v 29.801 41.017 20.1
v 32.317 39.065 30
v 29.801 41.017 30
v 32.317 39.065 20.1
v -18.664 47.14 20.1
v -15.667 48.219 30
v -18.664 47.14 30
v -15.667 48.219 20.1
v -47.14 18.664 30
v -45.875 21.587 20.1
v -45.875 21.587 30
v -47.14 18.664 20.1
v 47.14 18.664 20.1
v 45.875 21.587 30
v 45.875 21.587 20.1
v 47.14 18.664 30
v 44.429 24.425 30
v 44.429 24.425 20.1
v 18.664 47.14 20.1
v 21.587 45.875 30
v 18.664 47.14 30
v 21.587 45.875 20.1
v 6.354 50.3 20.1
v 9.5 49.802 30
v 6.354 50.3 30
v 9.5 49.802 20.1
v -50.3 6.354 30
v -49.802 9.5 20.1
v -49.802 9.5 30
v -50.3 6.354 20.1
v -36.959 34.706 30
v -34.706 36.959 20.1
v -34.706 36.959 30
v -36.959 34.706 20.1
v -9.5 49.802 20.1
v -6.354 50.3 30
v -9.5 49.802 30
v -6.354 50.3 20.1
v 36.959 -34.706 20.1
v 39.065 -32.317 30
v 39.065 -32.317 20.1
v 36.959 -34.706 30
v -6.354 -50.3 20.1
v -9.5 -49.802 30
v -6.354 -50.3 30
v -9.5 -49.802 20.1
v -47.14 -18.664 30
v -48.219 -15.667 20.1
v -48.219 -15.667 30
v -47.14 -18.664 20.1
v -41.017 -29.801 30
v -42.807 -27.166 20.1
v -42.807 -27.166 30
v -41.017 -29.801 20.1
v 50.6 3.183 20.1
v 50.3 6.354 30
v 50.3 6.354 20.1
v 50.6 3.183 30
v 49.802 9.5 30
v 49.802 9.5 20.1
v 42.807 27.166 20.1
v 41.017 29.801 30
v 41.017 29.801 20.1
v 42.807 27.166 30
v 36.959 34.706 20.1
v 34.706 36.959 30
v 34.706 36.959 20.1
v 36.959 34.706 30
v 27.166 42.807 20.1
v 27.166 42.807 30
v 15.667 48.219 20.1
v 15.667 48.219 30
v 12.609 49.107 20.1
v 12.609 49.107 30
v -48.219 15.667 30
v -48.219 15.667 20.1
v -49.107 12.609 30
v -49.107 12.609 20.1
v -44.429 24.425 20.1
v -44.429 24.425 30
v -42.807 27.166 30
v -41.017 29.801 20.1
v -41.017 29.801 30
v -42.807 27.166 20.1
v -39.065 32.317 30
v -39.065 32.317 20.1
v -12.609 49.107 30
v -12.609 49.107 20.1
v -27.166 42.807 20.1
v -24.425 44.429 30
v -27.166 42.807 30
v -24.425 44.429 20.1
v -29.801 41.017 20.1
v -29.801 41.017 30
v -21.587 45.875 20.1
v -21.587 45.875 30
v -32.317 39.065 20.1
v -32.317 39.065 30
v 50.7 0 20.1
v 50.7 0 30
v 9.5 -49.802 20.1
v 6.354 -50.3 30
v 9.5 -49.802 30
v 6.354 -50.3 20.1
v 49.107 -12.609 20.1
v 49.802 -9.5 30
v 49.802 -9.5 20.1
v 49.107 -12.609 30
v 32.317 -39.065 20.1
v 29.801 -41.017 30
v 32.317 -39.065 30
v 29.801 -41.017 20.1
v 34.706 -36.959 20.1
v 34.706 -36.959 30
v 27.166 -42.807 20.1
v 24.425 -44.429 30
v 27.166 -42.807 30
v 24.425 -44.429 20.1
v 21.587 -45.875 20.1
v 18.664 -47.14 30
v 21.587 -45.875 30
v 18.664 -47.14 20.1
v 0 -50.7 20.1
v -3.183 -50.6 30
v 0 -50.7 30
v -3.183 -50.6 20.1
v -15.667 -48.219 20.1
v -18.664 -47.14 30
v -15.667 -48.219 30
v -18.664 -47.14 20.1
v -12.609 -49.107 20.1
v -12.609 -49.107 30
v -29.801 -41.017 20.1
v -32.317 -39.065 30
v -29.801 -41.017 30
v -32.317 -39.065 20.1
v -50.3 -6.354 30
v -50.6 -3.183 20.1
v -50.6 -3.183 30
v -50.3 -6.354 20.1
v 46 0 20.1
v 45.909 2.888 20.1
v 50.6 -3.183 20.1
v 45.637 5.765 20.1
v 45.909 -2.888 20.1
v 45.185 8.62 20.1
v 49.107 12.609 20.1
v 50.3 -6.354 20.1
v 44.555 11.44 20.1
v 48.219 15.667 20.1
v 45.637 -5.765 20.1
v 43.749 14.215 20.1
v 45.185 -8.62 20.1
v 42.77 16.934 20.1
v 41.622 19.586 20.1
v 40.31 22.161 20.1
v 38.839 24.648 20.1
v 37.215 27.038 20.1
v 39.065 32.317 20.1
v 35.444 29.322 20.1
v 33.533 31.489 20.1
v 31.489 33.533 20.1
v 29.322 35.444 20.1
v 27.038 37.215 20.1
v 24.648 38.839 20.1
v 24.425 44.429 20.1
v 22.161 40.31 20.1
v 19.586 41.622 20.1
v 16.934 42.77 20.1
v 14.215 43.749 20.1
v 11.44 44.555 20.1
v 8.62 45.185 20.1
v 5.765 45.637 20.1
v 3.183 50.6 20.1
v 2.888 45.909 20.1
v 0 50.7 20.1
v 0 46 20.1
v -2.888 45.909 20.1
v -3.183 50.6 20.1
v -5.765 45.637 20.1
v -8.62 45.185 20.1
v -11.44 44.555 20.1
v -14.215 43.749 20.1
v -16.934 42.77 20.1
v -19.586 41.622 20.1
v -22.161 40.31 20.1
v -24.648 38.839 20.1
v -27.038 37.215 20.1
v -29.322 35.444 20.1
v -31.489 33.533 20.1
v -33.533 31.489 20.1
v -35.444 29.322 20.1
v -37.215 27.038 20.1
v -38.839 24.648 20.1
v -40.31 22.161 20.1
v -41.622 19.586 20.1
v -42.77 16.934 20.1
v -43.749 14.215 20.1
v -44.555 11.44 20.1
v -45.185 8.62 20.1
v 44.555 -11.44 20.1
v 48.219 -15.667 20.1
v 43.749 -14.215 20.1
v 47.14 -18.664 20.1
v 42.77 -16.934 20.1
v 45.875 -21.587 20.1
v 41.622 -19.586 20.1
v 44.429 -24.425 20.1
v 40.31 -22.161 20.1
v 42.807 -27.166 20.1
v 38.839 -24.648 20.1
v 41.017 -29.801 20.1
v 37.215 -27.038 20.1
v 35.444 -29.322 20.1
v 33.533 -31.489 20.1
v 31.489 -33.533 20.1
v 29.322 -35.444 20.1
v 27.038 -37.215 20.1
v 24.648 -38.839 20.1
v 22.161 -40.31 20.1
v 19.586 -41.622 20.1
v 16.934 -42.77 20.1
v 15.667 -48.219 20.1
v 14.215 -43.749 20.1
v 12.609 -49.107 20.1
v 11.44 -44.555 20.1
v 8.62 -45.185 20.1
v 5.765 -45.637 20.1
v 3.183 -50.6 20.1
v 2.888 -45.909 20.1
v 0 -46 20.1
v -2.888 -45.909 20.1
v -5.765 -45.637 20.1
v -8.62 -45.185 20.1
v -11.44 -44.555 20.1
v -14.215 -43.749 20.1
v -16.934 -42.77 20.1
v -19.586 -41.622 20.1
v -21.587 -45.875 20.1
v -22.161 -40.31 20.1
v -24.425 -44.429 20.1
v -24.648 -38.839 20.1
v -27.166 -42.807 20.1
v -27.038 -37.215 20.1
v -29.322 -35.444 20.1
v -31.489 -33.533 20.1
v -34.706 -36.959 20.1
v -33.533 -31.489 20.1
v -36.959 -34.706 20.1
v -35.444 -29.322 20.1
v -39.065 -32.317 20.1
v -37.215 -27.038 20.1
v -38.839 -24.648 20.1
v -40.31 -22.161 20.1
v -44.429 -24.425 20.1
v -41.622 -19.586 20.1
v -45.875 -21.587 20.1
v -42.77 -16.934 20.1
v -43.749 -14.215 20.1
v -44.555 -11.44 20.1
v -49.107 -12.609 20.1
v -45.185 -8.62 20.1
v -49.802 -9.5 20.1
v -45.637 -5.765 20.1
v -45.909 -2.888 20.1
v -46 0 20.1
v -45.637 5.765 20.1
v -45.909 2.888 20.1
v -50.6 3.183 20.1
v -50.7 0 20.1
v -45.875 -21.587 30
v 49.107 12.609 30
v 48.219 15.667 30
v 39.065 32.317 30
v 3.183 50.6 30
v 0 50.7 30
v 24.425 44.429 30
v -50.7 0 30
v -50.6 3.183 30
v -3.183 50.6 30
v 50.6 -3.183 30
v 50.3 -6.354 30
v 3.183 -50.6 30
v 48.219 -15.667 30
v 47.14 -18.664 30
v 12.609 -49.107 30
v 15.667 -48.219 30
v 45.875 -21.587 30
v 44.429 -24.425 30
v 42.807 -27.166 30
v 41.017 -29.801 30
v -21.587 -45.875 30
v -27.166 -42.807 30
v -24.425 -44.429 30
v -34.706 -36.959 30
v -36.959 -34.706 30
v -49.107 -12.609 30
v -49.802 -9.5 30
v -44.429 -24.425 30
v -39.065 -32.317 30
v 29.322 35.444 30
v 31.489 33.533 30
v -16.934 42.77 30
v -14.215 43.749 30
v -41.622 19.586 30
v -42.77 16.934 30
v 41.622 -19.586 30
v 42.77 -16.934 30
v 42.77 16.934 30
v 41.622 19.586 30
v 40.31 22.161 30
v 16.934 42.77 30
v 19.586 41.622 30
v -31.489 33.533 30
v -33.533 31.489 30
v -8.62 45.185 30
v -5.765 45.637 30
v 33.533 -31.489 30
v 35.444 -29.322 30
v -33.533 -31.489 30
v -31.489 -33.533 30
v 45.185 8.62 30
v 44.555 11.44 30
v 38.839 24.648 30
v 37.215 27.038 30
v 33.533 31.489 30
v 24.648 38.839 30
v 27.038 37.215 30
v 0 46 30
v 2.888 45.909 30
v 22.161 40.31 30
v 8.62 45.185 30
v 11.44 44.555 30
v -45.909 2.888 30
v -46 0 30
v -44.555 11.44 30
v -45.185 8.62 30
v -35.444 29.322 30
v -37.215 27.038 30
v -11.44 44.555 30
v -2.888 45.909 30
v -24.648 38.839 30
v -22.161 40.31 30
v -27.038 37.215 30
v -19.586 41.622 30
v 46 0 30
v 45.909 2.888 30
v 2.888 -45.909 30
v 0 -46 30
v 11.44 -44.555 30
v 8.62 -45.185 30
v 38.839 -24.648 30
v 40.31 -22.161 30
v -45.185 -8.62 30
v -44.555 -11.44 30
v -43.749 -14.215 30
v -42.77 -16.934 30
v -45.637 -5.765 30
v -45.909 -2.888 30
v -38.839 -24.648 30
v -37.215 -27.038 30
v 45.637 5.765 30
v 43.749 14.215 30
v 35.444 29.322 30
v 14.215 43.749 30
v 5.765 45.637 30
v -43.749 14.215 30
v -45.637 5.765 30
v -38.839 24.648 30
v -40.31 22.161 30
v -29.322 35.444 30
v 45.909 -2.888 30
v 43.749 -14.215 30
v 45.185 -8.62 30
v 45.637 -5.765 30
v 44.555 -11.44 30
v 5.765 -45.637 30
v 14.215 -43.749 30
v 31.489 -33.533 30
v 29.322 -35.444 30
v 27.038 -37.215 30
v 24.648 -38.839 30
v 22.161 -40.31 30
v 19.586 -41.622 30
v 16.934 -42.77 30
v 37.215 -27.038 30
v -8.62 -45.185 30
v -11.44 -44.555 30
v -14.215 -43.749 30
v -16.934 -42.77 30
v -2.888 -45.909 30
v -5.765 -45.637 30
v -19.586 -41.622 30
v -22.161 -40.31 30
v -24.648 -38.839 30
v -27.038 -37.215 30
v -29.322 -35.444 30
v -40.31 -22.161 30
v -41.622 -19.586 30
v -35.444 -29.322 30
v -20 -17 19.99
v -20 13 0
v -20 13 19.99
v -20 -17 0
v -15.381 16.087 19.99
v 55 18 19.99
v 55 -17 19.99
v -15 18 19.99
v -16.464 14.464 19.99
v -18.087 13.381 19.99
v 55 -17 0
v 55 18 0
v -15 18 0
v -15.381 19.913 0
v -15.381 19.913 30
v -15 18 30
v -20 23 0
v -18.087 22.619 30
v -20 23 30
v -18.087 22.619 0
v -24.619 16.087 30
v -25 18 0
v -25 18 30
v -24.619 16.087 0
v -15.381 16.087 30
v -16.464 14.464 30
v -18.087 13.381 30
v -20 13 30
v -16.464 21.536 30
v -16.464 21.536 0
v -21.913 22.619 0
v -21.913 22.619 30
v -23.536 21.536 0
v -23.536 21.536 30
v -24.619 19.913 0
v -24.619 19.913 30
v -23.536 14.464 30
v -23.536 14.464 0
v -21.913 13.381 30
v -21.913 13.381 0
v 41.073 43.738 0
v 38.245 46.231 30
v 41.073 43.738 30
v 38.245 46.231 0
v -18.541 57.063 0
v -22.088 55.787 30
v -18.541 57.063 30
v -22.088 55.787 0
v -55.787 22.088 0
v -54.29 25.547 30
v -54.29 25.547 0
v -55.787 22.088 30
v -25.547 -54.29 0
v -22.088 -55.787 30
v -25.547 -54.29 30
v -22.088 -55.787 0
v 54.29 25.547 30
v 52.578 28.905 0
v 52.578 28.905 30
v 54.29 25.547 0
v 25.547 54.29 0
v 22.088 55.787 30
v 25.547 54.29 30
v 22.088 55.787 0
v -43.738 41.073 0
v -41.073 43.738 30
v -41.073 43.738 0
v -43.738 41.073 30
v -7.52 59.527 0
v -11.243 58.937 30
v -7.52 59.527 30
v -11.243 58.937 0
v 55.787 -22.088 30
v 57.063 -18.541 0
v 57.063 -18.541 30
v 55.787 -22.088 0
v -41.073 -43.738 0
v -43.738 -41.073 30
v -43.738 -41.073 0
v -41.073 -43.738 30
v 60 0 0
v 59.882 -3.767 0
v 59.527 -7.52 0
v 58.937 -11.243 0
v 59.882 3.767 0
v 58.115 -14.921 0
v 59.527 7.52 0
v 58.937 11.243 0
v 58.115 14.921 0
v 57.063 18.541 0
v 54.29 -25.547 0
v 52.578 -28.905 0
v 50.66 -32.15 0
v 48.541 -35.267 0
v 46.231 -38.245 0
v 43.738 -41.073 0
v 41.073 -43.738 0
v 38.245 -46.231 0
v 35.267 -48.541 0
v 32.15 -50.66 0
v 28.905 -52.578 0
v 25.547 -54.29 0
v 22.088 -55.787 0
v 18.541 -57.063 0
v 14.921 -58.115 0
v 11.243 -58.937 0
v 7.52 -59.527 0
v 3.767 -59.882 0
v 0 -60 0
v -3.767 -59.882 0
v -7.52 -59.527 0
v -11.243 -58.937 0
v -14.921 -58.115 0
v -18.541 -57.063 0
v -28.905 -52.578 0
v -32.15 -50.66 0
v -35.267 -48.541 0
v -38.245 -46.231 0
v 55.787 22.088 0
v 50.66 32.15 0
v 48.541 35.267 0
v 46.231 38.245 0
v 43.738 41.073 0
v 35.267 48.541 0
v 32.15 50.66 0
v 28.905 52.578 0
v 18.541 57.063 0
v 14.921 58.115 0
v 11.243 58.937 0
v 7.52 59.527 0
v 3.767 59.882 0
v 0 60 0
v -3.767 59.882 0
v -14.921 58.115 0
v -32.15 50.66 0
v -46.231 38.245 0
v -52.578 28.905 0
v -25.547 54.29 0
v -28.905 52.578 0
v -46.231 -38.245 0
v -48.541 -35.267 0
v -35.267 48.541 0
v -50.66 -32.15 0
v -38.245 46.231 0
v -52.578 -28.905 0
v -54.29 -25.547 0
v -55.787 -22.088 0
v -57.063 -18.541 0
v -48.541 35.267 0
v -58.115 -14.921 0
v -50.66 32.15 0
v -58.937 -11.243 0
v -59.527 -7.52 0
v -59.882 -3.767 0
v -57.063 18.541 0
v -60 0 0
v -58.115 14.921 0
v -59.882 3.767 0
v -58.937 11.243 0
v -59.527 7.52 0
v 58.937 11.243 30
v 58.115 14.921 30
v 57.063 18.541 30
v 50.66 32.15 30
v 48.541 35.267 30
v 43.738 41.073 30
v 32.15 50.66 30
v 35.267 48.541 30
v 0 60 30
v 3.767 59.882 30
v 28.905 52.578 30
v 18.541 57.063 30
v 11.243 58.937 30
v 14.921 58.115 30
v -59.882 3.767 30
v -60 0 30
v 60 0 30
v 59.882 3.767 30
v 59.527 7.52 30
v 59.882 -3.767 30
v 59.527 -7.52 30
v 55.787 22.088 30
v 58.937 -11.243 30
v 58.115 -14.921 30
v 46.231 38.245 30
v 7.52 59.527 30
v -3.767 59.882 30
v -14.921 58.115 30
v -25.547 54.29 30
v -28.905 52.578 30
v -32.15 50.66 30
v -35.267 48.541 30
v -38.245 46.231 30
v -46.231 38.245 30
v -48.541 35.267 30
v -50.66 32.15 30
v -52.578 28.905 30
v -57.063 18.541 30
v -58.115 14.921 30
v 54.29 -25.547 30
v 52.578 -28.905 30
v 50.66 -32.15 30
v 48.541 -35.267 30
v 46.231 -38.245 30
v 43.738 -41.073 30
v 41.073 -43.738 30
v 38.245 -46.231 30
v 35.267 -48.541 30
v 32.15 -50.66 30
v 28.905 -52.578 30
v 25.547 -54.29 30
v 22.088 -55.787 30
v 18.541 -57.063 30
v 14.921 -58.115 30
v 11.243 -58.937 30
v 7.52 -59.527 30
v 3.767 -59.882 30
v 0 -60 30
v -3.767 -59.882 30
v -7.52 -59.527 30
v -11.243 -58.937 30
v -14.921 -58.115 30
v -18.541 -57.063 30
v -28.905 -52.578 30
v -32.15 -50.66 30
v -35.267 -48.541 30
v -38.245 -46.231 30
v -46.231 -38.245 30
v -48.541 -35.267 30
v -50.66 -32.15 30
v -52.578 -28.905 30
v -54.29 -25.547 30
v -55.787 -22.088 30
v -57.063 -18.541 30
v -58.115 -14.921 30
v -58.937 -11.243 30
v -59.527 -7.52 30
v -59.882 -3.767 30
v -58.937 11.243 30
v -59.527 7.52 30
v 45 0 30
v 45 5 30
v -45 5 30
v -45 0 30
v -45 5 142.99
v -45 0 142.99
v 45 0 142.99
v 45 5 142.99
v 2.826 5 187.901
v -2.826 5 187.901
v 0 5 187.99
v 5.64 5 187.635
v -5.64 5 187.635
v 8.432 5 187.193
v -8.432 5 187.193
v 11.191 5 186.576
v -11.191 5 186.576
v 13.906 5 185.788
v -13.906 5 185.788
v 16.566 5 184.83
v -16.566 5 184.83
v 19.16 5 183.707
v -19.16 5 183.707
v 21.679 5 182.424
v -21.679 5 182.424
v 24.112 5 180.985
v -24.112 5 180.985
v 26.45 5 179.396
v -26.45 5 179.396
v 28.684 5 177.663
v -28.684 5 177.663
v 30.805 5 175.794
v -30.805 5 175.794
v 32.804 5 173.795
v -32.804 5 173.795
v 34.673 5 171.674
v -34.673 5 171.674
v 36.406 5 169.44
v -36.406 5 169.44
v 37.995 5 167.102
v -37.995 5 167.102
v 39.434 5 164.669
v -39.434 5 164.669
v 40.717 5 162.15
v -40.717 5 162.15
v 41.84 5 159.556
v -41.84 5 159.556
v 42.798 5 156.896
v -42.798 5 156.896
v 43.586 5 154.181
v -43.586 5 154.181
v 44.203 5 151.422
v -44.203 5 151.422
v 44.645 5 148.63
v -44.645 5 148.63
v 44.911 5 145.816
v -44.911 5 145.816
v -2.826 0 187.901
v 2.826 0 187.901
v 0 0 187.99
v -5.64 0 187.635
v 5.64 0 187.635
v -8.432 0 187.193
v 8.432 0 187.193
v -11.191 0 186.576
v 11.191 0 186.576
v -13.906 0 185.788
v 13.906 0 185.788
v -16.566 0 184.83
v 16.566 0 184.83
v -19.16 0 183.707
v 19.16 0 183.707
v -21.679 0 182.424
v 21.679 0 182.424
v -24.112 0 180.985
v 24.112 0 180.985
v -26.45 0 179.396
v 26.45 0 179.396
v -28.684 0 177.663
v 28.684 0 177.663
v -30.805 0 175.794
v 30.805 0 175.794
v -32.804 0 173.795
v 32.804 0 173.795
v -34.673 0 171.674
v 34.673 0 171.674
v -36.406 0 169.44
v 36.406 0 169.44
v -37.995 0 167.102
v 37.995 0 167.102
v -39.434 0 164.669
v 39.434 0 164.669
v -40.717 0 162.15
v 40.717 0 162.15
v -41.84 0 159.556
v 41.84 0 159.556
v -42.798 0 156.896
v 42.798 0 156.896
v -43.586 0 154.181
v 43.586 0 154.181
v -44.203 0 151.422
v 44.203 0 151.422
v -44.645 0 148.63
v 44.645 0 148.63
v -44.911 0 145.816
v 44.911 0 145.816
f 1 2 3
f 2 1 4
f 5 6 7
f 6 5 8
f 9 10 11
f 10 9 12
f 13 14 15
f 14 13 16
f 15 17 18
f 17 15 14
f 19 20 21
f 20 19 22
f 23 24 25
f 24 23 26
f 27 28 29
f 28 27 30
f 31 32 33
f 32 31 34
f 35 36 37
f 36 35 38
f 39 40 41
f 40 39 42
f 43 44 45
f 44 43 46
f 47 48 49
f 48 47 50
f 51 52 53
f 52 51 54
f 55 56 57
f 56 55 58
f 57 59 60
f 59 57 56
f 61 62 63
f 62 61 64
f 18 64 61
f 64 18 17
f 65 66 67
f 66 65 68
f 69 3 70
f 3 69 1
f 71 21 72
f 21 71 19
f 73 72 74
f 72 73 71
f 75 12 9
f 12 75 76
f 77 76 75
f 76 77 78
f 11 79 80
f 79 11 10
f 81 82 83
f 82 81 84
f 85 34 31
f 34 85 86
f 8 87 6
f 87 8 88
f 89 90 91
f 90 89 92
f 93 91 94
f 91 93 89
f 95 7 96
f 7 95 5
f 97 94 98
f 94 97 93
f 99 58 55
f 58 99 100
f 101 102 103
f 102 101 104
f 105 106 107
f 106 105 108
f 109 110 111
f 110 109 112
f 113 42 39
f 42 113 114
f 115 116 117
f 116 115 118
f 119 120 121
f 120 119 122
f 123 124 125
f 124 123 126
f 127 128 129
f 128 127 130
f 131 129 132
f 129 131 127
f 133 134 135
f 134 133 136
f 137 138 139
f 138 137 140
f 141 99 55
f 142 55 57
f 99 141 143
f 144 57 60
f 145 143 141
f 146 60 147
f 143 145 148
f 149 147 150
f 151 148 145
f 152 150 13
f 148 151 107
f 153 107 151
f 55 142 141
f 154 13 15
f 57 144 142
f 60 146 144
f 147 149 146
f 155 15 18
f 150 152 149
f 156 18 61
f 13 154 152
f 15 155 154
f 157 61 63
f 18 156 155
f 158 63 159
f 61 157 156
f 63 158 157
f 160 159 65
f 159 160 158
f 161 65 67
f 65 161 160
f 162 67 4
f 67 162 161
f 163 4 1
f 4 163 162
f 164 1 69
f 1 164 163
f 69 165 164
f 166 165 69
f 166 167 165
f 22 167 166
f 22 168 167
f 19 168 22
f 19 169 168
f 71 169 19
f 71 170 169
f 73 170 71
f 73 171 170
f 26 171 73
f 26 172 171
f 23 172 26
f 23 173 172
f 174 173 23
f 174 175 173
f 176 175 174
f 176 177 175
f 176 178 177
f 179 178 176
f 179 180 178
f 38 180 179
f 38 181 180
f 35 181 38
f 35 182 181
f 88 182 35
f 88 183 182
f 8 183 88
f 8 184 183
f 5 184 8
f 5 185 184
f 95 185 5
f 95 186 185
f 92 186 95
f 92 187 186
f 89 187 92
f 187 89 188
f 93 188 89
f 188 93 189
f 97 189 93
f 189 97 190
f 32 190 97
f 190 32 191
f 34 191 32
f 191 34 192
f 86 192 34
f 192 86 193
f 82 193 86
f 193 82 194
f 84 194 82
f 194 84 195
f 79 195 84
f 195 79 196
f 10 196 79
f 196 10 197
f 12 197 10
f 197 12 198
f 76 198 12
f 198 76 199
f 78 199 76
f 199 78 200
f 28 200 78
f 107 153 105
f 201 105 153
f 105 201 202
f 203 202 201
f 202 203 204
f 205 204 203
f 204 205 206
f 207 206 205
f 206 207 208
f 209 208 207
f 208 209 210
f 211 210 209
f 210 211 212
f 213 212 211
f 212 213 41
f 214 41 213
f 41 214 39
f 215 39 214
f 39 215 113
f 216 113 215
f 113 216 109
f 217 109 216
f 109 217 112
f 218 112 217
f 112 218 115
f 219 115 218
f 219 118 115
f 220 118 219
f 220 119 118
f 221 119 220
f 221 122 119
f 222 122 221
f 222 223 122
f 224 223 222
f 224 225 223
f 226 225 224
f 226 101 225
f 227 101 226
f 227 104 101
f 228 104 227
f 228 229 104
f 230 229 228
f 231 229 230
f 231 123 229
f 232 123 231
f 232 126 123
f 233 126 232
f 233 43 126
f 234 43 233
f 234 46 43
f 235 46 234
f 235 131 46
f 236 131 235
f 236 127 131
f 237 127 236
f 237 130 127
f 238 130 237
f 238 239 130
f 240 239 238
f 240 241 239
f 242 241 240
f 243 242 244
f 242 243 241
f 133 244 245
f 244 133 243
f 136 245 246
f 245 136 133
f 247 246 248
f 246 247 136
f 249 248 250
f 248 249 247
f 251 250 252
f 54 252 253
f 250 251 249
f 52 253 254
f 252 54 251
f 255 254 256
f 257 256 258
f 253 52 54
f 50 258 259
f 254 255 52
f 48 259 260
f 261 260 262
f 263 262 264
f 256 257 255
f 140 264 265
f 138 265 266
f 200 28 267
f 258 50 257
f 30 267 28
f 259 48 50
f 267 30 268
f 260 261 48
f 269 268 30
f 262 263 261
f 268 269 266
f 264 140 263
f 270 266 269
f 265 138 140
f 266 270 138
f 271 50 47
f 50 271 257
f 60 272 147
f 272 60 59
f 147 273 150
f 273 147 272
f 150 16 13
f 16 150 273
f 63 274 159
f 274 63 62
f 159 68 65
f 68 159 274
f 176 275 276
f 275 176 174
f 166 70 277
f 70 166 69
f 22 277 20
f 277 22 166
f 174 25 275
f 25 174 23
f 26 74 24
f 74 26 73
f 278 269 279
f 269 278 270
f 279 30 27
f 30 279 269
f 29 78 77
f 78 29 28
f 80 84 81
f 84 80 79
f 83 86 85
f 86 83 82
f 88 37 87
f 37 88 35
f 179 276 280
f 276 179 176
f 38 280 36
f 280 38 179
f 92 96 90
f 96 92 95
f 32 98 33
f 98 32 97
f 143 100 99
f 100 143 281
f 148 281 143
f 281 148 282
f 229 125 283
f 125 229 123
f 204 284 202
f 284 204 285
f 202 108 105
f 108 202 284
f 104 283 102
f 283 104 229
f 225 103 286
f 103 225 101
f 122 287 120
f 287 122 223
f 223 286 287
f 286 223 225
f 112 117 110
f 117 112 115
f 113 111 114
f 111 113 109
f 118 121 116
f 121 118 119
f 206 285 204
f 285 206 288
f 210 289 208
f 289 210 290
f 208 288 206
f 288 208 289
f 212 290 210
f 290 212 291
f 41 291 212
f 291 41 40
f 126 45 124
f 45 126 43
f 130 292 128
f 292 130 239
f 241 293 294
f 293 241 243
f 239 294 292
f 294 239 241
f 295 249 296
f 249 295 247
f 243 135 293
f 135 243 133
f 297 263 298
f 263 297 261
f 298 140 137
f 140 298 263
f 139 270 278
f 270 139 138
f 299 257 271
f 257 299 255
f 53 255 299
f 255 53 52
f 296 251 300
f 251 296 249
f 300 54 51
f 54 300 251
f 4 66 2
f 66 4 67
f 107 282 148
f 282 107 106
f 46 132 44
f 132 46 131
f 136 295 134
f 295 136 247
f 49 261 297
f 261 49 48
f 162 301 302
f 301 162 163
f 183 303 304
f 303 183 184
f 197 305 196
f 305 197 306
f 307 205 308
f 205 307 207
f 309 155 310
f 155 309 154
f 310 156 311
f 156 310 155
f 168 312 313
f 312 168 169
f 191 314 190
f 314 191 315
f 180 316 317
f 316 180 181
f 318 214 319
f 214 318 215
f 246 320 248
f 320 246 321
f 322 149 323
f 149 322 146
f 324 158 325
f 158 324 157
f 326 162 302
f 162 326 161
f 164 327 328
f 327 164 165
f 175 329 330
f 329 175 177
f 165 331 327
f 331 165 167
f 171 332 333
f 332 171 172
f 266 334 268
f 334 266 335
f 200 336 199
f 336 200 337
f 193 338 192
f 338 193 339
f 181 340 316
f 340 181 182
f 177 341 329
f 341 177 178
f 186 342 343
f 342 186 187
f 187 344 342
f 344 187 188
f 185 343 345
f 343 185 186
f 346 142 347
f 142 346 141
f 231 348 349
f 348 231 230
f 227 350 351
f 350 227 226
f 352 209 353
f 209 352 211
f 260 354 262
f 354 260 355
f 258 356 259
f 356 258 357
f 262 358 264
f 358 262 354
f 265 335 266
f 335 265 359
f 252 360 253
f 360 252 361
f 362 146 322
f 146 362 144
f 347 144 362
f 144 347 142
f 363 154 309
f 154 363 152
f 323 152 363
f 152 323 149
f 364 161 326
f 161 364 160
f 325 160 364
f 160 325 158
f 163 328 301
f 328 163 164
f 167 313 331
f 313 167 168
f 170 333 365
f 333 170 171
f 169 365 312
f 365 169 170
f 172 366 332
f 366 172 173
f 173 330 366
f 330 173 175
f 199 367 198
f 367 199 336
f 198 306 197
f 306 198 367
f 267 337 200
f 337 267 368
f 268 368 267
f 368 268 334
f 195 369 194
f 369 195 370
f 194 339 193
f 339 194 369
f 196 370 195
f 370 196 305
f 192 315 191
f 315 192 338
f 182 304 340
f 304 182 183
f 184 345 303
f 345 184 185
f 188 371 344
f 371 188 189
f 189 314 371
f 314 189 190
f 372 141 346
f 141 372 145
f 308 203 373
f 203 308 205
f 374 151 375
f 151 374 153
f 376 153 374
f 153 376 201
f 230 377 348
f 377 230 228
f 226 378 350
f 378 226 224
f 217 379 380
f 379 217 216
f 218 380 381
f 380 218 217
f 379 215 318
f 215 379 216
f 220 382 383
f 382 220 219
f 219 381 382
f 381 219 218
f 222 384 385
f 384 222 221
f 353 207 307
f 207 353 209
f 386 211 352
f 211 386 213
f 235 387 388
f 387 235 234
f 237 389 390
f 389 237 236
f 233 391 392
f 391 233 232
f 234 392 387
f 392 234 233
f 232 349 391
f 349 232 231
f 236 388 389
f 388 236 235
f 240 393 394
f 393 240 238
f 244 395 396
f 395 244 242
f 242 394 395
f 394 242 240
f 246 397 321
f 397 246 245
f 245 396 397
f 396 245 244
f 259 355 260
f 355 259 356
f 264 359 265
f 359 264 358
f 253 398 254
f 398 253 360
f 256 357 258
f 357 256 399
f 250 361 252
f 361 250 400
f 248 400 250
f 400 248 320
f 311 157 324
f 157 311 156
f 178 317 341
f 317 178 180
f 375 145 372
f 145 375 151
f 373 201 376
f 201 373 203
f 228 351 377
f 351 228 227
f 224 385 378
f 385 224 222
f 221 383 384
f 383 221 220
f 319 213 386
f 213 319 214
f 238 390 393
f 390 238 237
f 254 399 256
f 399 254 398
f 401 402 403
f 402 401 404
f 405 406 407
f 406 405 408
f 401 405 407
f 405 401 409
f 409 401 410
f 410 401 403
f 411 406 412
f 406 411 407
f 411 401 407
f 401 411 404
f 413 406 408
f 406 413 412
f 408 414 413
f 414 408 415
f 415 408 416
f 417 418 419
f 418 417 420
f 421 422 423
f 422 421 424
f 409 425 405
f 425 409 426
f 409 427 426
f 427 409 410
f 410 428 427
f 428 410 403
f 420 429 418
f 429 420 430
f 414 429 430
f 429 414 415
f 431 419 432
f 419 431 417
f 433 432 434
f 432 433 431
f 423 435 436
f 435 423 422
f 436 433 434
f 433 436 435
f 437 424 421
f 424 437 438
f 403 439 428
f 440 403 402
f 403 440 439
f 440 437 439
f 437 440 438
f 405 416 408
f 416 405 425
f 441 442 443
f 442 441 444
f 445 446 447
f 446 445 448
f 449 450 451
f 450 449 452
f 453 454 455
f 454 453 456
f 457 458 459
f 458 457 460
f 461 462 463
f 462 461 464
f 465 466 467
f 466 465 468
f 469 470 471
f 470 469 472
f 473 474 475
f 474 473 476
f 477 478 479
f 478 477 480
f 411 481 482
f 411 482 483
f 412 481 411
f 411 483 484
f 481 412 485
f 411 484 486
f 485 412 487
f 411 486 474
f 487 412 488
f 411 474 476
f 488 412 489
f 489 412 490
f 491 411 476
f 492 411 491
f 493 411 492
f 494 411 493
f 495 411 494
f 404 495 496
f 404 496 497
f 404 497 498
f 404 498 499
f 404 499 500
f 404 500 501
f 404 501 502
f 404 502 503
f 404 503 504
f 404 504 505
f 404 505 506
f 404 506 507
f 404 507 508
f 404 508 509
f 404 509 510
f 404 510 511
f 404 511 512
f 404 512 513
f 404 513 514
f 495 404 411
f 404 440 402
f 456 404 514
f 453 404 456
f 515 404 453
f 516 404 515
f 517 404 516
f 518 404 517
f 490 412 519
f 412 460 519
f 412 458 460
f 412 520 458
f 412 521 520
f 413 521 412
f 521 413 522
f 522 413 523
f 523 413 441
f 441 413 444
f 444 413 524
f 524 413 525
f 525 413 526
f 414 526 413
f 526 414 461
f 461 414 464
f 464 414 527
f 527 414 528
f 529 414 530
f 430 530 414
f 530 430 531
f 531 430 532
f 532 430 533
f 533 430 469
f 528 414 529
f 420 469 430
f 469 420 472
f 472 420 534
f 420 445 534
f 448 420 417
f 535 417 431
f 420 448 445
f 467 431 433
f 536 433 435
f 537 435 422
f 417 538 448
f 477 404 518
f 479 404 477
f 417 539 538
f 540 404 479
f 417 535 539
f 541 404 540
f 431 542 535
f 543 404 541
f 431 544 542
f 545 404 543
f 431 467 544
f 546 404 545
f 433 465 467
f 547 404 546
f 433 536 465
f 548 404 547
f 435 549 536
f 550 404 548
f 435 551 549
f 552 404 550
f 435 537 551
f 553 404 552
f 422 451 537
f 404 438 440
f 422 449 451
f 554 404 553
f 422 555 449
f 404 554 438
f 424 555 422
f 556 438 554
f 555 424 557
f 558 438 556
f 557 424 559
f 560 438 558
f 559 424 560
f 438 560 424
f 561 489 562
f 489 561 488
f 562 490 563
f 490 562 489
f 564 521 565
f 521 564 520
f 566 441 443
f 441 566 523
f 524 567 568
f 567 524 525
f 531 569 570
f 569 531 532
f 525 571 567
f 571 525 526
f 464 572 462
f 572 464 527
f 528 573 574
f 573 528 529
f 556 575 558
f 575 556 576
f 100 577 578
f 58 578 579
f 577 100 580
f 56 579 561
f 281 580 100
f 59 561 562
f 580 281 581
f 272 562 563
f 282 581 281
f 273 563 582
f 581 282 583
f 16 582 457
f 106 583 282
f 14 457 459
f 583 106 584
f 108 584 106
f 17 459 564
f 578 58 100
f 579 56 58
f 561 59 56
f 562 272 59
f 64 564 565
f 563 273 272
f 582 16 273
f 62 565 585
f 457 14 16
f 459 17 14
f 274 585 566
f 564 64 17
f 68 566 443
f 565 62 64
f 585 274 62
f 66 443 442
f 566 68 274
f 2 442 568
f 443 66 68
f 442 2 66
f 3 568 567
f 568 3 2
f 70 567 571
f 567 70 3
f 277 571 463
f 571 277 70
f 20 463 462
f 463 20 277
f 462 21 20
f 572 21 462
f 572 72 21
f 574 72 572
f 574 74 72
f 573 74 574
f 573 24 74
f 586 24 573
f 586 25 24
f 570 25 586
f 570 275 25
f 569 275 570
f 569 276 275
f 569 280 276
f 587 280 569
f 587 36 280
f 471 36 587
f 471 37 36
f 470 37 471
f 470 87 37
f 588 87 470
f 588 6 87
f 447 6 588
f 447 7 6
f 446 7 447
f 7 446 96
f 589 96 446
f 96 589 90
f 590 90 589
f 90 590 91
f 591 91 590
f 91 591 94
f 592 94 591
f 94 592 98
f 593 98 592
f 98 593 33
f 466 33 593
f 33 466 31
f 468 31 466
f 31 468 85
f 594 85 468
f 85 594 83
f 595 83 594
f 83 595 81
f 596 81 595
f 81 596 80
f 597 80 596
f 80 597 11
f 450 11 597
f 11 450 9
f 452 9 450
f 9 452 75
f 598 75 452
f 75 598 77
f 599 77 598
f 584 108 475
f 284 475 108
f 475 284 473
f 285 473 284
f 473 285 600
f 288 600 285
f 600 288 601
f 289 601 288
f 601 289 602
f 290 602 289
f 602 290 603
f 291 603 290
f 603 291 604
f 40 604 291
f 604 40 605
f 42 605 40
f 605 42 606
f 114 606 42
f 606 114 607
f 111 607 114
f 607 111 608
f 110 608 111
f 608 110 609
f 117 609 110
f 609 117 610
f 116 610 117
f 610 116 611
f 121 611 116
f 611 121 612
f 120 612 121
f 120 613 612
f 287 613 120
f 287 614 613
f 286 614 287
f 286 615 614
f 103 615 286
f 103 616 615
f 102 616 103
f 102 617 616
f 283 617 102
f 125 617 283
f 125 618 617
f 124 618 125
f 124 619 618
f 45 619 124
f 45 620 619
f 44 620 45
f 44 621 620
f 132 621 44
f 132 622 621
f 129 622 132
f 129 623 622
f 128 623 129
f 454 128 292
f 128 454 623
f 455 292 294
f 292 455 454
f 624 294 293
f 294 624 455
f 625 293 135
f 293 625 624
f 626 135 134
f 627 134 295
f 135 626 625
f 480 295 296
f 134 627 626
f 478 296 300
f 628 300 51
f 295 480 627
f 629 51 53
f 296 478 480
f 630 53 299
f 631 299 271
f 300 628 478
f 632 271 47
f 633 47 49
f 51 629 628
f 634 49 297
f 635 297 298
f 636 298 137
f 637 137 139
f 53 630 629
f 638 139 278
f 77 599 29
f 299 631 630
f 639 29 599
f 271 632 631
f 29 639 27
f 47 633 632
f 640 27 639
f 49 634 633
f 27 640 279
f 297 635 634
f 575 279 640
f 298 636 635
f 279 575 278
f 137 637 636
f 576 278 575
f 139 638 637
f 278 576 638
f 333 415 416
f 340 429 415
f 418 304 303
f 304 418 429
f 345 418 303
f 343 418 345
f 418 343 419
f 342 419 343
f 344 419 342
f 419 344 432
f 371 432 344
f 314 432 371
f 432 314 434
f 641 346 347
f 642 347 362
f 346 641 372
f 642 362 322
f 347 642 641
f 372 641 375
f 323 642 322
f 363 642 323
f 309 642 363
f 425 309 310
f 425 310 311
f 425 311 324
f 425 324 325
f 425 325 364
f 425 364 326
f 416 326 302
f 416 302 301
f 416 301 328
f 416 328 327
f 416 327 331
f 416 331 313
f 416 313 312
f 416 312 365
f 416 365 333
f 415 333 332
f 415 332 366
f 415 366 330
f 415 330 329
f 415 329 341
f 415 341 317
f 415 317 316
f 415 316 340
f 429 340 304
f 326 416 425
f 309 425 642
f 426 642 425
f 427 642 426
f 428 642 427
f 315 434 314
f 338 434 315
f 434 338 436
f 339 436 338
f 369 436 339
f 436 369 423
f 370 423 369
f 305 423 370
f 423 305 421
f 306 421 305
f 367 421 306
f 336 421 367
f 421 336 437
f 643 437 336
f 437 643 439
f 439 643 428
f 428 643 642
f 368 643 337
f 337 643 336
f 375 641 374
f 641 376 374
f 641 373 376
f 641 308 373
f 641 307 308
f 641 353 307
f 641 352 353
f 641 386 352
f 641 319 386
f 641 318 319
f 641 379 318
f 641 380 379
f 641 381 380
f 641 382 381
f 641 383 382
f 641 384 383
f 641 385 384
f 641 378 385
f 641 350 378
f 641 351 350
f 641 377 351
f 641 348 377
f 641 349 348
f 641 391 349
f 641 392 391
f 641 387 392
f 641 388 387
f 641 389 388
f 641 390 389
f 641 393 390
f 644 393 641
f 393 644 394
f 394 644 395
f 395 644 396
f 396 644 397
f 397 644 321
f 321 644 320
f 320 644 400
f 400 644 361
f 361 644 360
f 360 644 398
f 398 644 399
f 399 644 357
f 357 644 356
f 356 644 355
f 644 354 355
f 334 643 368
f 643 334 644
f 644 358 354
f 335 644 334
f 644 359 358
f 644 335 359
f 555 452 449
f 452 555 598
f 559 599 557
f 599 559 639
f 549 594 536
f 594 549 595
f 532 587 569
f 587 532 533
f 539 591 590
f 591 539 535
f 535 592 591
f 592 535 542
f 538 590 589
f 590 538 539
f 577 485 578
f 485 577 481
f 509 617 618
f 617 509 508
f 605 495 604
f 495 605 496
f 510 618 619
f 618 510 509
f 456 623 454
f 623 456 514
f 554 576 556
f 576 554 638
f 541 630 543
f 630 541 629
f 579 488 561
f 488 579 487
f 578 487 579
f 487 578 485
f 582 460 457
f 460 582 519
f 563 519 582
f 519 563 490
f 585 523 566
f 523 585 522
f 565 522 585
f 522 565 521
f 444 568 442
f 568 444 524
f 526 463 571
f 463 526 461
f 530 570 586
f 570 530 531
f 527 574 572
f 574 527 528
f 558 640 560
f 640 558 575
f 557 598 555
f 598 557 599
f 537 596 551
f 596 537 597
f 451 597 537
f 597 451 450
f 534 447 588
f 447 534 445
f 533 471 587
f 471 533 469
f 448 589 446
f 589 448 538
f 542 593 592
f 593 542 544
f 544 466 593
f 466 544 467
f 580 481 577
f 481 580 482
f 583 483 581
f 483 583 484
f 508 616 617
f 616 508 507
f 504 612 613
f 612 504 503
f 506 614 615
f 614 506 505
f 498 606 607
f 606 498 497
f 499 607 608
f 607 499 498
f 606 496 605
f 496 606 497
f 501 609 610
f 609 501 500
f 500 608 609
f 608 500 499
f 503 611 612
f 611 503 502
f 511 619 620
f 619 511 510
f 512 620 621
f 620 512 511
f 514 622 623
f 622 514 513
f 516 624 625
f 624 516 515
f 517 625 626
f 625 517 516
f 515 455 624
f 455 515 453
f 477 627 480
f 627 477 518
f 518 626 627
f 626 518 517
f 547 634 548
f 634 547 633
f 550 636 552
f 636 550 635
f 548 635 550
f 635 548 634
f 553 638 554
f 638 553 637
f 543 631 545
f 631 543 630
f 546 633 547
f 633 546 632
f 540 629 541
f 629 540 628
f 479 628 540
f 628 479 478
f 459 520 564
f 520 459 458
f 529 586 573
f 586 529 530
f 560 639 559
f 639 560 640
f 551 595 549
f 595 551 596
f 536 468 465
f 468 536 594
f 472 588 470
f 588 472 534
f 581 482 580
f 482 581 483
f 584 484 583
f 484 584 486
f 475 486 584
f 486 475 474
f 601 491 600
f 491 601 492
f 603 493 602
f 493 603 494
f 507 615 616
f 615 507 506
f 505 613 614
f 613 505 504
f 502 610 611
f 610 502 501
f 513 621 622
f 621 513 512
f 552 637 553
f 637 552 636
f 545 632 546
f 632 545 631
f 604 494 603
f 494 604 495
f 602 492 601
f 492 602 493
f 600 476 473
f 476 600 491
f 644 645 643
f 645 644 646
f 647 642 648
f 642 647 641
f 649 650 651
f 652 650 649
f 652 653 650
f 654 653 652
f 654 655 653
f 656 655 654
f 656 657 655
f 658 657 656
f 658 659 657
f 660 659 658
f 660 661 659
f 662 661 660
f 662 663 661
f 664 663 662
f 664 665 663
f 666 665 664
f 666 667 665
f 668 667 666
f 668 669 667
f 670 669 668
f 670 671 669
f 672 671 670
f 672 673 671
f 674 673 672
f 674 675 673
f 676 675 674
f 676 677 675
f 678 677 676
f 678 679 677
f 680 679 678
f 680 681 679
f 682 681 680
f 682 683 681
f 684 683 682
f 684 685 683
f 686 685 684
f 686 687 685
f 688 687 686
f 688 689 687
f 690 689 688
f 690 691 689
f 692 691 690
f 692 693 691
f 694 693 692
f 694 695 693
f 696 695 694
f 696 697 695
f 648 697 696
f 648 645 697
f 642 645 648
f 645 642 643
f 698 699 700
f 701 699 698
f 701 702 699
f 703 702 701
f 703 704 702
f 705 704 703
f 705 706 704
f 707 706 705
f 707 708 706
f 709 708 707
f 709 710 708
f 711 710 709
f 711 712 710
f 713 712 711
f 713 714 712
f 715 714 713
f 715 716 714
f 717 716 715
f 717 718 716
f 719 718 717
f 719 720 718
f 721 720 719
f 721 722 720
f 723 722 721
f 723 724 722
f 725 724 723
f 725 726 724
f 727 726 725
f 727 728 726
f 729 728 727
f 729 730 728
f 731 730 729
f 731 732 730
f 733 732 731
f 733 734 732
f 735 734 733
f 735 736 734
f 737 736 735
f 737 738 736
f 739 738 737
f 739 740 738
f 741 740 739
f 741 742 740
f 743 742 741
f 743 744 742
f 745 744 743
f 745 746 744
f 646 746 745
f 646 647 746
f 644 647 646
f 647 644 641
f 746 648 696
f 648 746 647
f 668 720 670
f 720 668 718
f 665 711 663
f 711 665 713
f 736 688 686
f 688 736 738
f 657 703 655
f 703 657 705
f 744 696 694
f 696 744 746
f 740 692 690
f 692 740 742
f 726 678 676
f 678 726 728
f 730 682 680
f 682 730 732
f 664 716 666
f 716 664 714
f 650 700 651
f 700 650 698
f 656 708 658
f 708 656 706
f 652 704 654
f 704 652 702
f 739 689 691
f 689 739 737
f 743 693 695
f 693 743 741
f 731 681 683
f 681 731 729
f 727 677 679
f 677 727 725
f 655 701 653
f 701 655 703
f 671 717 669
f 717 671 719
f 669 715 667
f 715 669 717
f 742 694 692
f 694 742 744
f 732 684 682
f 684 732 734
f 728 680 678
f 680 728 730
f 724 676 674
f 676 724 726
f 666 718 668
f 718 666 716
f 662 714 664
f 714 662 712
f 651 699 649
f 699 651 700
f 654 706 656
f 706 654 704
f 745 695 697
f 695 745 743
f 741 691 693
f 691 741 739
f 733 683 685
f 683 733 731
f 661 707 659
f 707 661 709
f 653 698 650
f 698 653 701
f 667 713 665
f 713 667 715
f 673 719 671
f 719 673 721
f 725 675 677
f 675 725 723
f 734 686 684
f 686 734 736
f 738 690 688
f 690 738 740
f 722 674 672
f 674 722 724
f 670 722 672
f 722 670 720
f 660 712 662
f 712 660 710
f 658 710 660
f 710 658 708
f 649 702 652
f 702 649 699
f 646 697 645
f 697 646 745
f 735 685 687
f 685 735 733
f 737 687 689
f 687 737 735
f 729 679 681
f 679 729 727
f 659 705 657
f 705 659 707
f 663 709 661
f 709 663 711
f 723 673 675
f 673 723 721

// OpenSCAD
    sphere_radius = 50;
    sphere_glass_width = 2;
    additional_outside = 5;
    
    socket_height = 30;
    socket_cut_in = 10;

    start_of_round = 113;
    width_of_banner = 90;
    

    // socket
    difference() {
       
        cylinder(socket_height, 
            sphere_radius + (2 * additional_outside), 
            sphere_radius + (2 * additional_outside), 
            $fn = 100);
        translate([0, 0, socket_height+0.1 - socket_cut_in]) {
            tube();
        }
        translate([-20, -17, -0.01]) {
            battery();
        }
    
    }
    translate([-width_of_banner/2, 0, socket_height - 0.01]) {
        banner();
    }

    
    module tube() {
        difference() {
            cylinder(socket_cut_in,
            sphere_radius + 0.7,
            sphere_radius + 0.7,
            $fn = 100);
            cylinder(socket_cut_in,
            sphere_radius - (sphere_glass_width * 2),
            sphere_radius - (sphere_glass_width * 2),
            $fn = 100);
        }
    }
    
    module battery() {
        union() {
            cube([75, 35, 20]);
            translate([0,35,0]) {
                cylinder(socket_height + 5, 5, 5);
            }
        }
    }
    
    module banner() {
        union() {
            cube([width_of_banner, 5, start_of_round]);
            translate([width_of_banner / 2, 5, start_of_round]) {
                rotate([90, 0, 0]) {
                    cylinder(5, 
                        width_of_banner/2, 
                        width_of_banner/2,
                        $fn = 100);
                }
            }
        }
    }
        
